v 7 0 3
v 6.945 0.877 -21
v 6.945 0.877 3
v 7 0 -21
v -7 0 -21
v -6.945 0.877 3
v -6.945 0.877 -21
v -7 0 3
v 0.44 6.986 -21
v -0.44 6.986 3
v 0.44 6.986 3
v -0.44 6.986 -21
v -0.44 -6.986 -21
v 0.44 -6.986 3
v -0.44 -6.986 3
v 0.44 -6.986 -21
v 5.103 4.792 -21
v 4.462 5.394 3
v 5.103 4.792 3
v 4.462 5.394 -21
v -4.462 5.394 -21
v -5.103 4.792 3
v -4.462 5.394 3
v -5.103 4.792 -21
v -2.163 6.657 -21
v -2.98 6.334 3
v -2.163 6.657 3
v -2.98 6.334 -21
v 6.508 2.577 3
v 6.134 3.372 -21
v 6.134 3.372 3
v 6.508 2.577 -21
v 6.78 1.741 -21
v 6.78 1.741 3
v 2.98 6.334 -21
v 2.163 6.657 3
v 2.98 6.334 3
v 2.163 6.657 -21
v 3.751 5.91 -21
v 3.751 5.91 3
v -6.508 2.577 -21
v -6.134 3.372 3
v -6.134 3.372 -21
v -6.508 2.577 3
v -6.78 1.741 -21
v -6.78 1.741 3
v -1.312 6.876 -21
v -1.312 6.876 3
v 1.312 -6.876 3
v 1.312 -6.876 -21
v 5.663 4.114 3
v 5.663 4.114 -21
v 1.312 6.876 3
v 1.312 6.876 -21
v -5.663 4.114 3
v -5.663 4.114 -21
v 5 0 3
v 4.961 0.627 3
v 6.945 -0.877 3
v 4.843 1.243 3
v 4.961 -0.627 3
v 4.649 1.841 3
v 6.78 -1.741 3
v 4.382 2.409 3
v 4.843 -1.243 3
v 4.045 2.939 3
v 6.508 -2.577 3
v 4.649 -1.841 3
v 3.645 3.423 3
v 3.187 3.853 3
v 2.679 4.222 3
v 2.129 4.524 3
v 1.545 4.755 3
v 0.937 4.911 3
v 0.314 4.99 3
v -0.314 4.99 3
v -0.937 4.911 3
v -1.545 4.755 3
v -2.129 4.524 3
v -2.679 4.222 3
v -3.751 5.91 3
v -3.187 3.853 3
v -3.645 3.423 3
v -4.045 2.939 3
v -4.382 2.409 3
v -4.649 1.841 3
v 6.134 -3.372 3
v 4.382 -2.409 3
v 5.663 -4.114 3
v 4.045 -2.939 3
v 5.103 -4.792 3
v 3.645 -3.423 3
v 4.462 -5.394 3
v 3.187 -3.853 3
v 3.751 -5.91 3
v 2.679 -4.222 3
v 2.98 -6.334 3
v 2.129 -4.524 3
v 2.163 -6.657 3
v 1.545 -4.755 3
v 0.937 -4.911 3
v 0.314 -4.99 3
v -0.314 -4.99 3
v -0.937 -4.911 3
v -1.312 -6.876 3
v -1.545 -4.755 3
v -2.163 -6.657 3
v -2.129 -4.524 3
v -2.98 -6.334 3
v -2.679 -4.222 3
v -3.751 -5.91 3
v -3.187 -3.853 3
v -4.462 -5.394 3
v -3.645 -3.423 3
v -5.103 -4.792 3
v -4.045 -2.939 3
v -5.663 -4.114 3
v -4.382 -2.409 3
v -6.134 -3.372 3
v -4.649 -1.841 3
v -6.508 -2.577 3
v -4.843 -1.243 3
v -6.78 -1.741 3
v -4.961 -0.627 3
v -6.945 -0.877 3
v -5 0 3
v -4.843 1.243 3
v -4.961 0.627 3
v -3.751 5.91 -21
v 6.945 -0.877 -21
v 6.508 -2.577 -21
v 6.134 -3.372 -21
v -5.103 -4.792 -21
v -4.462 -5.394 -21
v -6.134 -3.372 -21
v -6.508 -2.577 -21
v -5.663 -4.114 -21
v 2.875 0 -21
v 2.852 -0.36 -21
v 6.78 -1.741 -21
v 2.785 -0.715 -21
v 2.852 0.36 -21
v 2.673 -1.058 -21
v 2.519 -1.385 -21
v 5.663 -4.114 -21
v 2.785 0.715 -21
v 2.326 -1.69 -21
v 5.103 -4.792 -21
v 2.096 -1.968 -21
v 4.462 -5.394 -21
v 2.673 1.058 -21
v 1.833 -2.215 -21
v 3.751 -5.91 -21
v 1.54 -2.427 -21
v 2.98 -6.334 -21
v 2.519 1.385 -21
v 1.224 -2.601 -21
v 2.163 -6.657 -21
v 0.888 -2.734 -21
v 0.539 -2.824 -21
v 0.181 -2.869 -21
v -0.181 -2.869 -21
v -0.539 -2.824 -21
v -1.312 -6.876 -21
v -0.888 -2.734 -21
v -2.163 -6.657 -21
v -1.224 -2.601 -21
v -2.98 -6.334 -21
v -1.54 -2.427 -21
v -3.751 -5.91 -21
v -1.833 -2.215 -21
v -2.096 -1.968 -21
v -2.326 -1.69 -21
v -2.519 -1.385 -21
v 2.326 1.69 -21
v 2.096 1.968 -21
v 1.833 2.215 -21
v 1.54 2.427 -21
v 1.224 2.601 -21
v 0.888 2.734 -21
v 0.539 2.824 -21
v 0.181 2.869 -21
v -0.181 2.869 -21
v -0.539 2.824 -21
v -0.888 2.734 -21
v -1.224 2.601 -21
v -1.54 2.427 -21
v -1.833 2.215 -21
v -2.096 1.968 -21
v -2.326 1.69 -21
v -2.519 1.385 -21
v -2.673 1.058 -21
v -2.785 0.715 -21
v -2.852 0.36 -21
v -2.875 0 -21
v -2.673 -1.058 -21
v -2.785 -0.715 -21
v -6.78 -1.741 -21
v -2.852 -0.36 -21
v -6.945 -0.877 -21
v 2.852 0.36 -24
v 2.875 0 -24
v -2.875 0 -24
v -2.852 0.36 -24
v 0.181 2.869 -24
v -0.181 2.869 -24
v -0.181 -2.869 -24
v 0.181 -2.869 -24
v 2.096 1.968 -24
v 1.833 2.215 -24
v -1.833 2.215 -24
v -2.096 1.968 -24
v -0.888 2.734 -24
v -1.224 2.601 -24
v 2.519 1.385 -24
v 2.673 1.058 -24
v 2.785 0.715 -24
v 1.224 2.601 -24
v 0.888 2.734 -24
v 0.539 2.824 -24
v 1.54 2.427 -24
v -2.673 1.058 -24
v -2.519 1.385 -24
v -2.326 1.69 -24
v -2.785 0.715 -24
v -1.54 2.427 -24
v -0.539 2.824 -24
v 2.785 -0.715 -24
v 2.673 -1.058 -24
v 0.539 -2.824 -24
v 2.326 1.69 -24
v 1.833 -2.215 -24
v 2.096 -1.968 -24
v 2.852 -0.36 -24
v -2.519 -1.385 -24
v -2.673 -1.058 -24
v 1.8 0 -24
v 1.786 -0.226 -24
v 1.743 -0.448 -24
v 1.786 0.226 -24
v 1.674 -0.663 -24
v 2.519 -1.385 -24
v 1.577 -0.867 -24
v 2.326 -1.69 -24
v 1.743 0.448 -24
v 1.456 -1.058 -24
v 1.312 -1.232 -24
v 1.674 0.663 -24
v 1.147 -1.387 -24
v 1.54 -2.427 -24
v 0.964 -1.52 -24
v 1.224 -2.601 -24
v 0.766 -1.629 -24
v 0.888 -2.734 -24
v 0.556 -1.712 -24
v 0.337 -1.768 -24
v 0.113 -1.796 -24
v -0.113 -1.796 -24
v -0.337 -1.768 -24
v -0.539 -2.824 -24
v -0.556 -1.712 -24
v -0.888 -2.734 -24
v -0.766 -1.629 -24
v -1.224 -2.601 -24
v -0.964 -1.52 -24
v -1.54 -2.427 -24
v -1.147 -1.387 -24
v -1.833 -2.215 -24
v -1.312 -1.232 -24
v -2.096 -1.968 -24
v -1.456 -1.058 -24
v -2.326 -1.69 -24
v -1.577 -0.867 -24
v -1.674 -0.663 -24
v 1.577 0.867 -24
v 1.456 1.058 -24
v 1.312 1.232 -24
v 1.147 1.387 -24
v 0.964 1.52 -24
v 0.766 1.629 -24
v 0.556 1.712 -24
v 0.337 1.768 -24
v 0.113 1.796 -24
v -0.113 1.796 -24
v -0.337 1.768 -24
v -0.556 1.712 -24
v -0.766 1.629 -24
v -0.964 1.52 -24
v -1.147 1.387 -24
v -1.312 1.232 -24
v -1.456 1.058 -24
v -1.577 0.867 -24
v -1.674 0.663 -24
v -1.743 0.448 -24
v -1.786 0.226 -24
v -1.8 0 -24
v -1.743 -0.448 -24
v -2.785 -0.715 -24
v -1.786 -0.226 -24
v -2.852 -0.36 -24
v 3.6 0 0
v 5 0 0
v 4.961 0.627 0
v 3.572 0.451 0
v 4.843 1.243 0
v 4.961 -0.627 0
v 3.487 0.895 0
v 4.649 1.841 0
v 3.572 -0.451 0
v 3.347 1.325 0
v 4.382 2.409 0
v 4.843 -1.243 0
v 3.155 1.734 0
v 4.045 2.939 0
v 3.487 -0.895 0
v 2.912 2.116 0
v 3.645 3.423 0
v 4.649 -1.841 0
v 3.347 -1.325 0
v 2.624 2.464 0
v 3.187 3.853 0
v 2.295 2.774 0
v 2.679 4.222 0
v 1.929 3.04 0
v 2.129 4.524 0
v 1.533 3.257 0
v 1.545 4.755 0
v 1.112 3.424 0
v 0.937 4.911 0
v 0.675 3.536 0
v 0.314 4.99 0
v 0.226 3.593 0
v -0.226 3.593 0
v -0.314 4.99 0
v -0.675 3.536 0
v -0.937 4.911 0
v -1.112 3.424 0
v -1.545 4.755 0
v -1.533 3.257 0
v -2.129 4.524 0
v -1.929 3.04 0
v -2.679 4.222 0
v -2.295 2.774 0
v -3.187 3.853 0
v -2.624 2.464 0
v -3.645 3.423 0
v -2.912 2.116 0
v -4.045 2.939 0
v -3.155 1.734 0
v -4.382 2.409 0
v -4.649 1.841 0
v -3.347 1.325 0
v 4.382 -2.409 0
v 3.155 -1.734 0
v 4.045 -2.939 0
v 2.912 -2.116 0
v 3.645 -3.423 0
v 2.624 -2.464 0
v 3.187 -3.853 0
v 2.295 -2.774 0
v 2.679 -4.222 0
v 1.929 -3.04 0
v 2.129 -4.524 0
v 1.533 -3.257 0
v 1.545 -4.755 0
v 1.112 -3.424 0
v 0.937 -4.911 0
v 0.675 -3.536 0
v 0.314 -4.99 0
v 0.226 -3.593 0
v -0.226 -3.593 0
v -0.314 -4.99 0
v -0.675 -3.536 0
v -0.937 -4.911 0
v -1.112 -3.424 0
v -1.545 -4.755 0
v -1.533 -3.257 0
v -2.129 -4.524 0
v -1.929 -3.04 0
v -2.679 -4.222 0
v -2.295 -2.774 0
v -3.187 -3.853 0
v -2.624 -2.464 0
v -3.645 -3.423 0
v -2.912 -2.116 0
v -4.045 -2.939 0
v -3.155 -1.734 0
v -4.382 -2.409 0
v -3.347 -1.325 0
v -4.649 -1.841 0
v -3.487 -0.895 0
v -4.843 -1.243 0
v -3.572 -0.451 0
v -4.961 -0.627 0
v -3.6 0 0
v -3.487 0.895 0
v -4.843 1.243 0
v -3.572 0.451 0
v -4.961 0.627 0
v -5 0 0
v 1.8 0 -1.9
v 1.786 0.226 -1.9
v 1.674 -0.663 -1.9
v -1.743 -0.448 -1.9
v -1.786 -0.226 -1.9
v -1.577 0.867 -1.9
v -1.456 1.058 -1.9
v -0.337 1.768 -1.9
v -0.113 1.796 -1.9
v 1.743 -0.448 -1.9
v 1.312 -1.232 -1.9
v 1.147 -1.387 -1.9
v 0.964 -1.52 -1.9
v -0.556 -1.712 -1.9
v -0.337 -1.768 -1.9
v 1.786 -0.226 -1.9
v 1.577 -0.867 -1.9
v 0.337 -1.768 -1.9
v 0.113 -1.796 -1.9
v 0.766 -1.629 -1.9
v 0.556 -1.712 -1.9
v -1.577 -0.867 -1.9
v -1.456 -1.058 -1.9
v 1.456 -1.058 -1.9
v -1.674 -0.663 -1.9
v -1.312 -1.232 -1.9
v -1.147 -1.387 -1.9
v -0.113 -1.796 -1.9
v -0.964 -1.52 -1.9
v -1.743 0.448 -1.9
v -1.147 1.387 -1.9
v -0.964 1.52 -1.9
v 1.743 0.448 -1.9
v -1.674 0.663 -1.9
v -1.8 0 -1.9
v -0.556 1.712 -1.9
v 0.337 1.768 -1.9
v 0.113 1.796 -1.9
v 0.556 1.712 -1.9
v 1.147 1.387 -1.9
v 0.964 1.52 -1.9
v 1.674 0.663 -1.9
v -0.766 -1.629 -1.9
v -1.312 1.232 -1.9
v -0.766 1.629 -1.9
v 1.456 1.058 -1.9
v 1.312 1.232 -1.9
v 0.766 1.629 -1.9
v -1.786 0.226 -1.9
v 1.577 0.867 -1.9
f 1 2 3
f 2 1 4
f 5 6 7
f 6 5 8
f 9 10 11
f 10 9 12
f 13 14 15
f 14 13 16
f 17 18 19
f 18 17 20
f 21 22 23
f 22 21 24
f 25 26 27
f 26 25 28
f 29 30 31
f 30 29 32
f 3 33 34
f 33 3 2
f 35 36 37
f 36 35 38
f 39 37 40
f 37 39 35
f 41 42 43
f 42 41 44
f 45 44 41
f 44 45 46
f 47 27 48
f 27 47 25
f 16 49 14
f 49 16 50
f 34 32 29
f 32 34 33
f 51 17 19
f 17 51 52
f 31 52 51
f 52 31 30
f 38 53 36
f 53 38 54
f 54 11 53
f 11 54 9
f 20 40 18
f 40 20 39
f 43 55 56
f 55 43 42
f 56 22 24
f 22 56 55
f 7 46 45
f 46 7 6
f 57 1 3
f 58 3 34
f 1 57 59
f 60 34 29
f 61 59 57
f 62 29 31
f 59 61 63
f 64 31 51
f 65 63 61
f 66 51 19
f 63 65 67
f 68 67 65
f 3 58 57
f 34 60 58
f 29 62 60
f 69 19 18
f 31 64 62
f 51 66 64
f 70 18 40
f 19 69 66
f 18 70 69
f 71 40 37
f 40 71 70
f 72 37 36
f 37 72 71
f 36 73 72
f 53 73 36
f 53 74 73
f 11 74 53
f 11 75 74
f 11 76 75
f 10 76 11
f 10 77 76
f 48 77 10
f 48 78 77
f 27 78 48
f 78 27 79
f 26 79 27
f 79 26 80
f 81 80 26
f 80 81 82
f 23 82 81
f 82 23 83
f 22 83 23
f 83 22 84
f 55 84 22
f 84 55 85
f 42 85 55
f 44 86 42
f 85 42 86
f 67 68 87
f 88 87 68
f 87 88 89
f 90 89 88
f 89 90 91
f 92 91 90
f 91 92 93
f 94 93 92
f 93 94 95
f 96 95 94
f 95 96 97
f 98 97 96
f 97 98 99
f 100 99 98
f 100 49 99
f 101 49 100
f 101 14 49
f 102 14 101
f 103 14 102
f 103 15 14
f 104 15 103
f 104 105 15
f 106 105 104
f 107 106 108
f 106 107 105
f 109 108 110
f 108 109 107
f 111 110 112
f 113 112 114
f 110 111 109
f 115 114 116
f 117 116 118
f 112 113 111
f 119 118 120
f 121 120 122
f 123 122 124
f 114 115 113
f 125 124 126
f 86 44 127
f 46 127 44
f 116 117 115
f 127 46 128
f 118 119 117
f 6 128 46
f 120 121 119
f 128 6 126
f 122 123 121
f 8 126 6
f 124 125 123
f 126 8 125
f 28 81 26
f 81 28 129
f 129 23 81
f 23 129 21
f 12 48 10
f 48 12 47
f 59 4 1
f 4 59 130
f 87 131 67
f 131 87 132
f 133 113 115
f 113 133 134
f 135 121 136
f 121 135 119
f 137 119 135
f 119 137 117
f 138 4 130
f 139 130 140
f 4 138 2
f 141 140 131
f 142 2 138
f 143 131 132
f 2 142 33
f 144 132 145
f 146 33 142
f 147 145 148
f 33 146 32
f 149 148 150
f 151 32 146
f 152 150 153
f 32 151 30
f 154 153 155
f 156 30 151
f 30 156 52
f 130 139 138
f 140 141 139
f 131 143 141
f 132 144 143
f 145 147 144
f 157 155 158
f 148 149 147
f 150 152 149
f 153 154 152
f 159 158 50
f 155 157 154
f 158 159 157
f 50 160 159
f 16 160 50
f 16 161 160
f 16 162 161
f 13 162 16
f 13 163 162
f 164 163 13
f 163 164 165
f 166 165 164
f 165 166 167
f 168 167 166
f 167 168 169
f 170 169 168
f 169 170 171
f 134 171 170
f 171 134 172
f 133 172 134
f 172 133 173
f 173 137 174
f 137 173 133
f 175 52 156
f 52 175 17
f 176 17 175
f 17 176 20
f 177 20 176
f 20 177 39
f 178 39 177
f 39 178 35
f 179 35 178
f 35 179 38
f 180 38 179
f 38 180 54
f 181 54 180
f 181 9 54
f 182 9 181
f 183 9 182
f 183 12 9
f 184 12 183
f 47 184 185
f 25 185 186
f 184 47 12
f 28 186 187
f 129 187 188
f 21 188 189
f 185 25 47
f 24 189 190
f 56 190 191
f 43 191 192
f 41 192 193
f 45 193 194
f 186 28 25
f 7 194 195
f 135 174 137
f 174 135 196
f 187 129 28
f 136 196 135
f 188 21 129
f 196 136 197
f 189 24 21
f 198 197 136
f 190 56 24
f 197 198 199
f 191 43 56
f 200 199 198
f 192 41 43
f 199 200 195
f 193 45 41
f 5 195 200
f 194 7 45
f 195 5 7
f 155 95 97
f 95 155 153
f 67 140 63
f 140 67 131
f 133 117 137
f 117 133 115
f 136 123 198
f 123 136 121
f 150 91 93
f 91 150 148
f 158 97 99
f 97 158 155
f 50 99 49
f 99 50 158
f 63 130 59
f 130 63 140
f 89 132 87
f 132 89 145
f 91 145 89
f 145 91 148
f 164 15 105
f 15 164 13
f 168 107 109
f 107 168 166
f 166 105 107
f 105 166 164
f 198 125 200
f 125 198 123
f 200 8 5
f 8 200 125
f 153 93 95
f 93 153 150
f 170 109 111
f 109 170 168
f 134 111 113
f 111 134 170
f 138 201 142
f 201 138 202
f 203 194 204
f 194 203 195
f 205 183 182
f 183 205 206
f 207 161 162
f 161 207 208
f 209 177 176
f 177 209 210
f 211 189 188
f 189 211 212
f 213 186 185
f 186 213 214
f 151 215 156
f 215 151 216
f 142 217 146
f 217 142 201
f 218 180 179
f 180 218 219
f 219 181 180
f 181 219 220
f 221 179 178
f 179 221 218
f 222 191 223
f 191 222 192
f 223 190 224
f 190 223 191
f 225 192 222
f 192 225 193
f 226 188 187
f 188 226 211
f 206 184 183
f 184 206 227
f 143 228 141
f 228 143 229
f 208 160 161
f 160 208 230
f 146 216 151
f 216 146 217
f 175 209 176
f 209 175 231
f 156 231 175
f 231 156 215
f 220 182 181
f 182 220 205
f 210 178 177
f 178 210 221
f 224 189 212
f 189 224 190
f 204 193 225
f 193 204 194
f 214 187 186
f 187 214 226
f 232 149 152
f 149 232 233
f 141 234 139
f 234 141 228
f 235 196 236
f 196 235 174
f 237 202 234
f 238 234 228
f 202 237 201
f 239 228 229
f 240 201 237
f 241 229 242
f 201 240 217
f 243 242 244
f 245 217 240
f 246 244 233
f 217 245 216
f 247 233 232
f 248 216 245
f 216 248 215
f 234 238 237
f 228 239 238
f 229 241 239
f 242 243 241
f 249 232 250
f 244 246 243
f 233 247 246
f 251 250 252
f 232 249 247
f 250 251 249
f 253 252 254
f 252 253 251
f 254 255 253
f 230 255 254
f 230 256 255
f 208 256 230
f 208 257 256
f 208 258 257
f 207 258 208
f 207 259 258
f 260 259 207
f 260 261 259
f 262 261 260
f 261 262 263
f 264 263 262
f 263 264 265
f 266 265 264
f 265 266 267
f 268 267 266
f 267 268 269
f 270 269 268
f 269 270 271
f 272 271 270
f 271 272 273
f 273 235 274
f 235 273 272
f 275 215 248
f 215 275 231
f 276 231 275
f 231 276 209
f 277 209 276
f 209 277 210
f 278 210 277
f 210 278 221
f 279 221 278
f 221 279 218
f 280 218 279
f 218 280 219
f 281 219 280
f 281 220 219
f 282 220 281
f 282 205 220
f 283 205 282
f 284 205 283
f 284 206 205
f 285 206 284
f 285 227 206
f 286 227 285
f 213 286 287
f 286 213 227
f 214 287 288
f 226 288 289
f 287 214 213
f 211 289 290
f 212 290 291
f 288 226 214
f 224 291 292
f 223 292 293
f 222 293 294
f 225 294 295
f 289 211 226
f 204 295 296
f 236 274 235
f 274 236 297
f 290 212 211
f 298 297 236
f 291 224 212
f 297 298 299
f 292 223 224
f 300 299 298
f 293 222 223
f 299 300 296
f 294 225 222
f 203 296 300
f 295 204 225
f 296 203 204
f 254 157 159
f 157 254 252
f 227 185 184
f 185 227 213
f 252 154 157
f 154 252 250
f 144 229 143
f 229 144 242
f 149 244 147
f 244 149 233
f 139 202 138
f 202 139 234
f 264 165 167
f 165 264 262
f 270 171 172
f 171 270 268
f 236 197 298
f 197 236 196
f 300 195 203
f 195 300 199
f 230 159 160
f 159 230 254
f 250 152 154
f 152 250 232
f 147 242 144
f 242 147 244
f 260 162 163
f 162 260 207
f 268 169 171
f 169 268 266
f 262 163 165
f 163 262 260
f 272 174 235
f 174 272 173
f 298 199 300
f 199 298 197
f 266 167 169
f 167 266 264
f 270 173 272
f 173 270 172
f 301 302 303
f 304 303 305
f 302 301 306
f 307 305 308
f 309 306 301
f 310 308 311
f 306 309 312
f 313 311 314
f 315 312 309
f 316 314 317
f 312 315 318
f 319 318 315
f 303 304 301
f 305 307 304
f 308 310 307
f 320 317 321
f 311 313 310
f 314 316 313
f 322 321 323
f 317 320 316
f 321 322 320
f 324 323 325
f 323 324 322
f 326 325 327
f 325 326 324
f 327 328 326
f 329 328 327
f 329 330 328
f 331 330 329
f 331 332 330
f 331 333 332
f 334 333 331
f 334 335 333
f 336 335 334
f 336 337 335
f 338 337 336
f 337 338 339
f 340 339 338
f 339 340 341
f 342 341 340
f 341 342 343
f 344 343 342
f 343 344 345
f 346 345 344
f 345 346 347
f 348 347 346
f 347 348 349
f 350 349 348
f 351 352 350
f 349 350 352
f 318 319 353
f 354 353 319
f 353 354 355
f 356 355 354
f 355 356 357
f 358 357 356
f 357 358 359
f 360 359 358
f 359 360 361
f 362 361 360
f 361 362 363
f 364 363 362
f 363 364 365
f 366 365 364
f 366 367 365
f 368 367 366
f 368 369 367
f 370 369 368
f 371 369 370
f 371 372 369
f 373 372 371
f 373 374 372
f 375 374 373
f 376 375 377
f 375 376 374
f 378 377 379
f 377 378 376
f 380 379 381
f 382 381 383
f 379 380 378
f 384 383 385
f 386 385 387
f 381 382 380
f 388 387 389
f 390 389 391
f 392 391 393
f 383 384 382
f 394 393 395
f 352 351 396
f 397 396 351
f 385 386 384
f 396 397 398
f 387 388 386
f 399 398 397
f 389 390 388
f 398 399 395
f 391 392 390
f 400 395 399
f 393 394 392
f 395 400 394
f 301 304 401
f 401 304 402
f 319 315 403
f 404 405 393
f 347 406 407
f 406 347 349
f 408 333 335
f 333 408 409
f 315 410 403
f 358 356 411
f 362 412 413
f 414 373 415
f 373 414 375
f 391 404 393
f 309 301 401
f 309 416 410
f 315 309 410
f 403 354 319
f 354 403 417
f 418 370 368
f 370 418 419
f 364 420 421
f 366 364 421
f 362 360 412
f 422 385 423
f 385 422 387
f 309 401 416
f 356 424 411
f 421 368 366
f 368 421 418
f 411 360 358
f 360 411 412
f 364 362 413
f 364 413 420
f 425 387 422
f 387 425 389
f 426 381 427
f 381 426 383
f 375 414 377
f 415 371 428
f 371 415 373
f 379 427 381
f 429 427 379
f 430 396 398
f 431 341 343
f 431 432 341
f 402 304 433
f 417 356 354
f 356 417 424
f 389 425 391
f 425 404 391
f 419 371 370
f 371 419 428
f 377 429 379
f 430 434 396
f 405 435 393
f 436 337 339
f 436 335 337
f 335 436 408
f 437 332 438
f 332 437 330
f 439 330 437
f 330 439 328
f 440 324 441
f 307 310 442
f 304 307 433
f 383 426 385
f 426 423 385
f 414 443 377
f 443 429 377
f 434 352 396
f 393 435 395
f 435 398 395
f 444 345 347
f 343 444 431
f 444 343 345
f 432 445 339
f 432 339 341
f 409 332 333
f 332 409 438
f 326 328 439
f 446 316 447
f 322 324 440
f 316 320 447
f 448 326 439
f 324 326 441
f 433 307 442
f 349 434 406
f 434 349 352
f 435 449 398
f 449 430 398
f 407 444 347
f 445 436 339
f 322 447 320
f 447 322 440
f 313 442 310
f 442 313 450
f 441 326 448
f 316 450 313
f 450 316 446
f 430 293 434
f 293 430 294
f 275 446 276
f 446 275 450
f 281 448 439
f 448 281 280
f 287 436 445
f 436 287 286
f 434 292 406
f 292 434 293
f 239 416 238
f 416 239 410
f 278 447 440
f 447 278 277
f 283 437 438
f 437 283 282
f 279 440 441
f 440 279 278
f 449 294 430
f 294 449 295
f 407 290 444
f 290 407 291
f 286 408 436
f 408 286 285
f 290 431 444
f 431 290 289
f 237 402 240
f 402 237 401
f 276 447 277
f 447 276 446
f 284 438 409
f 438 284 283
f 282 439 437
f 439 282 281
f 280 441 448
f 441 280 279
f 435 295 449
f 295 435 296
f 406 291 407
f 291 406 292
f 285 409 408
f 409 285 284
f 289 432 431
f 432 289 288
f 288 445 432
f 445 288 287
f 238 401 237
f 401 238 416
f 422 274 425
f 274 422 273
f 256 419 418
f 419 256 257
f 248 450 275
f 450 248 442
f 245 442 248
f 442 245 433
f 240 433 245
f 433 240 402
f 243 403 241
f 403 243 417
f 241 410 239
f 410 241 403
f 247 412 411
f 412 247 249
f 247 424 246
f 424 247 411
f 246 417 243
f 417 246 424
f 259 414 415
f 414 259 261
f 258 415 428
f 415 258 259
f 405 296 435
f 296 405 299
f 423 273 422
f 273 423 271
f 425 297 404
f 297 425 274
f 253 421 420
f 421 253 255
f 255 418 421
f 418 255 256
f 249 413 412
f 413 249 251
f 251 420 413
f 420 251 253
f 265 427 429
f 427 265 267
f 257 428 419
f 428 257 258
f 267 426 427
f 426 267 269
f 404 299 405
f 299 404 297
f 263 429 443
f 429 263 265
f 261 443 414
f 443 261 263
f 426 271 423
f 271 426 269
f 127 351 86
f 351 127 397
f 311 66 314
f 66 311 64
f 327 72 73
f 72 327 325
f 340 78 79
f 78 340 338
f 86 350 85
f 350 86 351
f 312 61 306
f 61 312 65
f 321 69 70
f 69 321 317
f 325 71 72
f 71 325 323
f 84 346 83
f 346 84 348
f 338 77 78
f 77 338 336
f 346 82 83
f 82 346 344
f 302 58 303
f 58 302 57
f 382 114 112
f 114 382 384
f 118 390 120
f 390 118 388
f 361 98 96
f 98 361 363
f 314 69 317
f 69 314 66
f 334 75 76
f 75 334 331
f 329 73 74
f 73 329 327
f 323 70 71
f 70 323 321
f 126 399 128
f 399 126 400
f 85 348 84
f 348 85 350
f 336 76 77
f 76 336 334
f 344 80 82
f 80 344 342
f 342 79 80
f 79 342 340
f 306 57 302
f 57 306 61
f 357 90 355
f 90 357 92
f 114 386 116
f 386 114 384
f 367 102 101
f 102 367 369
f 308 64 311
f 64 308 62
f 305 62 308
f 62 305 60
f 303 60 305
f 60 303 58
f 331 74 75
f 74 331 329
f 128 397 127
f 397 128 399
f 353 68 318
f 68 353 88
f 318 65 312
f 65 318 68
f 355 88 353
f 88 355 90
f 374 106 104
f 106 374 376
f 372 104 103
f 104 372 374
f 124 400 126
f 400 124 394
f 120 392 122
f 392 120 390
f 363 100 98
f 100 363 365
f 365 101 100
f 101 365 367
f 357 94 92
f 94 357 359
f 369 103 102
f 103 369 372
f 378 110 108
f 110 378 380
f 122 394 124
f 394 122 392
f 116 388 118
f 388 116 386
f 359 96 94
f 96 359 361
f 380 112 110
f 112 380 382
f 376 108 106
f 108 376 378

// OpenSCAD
$fn = 50;

difference() {
	union() {
		translate(v = [0, 0, -21.0]) {
			cylinder(h = 24, r = 7.0);
		}
		#translate(v = [0, 0, -24.0]) {
			cylinder(h = 24, r = 2.875);
		}
	}
	union() {
		translate(v = [0, 0, 0]) {
			rotate(a = [0, 0, 0]) {
				difference() {
					union() {
						translate(v = [0, 0, -24.0]) {
							cylinder(h = 24, r = 1.5);
						}
						translate(v = [0, 0, -1.9]) {
							cylinder(h = 1.9, r1 = 1.8, r2 = 3.6);
						}
						translate(v = [0, 0, -24.0]) {
							cylinder(h = 24, r = 1.8);
						}
						translate(v = [0, 0, -24.0]) {
							cylinder(h = 24, r = 1.5);
						}
					}
					union();
				}
			}
		}
		#cylinder(h = 3, r = 5.0);
	}
}
